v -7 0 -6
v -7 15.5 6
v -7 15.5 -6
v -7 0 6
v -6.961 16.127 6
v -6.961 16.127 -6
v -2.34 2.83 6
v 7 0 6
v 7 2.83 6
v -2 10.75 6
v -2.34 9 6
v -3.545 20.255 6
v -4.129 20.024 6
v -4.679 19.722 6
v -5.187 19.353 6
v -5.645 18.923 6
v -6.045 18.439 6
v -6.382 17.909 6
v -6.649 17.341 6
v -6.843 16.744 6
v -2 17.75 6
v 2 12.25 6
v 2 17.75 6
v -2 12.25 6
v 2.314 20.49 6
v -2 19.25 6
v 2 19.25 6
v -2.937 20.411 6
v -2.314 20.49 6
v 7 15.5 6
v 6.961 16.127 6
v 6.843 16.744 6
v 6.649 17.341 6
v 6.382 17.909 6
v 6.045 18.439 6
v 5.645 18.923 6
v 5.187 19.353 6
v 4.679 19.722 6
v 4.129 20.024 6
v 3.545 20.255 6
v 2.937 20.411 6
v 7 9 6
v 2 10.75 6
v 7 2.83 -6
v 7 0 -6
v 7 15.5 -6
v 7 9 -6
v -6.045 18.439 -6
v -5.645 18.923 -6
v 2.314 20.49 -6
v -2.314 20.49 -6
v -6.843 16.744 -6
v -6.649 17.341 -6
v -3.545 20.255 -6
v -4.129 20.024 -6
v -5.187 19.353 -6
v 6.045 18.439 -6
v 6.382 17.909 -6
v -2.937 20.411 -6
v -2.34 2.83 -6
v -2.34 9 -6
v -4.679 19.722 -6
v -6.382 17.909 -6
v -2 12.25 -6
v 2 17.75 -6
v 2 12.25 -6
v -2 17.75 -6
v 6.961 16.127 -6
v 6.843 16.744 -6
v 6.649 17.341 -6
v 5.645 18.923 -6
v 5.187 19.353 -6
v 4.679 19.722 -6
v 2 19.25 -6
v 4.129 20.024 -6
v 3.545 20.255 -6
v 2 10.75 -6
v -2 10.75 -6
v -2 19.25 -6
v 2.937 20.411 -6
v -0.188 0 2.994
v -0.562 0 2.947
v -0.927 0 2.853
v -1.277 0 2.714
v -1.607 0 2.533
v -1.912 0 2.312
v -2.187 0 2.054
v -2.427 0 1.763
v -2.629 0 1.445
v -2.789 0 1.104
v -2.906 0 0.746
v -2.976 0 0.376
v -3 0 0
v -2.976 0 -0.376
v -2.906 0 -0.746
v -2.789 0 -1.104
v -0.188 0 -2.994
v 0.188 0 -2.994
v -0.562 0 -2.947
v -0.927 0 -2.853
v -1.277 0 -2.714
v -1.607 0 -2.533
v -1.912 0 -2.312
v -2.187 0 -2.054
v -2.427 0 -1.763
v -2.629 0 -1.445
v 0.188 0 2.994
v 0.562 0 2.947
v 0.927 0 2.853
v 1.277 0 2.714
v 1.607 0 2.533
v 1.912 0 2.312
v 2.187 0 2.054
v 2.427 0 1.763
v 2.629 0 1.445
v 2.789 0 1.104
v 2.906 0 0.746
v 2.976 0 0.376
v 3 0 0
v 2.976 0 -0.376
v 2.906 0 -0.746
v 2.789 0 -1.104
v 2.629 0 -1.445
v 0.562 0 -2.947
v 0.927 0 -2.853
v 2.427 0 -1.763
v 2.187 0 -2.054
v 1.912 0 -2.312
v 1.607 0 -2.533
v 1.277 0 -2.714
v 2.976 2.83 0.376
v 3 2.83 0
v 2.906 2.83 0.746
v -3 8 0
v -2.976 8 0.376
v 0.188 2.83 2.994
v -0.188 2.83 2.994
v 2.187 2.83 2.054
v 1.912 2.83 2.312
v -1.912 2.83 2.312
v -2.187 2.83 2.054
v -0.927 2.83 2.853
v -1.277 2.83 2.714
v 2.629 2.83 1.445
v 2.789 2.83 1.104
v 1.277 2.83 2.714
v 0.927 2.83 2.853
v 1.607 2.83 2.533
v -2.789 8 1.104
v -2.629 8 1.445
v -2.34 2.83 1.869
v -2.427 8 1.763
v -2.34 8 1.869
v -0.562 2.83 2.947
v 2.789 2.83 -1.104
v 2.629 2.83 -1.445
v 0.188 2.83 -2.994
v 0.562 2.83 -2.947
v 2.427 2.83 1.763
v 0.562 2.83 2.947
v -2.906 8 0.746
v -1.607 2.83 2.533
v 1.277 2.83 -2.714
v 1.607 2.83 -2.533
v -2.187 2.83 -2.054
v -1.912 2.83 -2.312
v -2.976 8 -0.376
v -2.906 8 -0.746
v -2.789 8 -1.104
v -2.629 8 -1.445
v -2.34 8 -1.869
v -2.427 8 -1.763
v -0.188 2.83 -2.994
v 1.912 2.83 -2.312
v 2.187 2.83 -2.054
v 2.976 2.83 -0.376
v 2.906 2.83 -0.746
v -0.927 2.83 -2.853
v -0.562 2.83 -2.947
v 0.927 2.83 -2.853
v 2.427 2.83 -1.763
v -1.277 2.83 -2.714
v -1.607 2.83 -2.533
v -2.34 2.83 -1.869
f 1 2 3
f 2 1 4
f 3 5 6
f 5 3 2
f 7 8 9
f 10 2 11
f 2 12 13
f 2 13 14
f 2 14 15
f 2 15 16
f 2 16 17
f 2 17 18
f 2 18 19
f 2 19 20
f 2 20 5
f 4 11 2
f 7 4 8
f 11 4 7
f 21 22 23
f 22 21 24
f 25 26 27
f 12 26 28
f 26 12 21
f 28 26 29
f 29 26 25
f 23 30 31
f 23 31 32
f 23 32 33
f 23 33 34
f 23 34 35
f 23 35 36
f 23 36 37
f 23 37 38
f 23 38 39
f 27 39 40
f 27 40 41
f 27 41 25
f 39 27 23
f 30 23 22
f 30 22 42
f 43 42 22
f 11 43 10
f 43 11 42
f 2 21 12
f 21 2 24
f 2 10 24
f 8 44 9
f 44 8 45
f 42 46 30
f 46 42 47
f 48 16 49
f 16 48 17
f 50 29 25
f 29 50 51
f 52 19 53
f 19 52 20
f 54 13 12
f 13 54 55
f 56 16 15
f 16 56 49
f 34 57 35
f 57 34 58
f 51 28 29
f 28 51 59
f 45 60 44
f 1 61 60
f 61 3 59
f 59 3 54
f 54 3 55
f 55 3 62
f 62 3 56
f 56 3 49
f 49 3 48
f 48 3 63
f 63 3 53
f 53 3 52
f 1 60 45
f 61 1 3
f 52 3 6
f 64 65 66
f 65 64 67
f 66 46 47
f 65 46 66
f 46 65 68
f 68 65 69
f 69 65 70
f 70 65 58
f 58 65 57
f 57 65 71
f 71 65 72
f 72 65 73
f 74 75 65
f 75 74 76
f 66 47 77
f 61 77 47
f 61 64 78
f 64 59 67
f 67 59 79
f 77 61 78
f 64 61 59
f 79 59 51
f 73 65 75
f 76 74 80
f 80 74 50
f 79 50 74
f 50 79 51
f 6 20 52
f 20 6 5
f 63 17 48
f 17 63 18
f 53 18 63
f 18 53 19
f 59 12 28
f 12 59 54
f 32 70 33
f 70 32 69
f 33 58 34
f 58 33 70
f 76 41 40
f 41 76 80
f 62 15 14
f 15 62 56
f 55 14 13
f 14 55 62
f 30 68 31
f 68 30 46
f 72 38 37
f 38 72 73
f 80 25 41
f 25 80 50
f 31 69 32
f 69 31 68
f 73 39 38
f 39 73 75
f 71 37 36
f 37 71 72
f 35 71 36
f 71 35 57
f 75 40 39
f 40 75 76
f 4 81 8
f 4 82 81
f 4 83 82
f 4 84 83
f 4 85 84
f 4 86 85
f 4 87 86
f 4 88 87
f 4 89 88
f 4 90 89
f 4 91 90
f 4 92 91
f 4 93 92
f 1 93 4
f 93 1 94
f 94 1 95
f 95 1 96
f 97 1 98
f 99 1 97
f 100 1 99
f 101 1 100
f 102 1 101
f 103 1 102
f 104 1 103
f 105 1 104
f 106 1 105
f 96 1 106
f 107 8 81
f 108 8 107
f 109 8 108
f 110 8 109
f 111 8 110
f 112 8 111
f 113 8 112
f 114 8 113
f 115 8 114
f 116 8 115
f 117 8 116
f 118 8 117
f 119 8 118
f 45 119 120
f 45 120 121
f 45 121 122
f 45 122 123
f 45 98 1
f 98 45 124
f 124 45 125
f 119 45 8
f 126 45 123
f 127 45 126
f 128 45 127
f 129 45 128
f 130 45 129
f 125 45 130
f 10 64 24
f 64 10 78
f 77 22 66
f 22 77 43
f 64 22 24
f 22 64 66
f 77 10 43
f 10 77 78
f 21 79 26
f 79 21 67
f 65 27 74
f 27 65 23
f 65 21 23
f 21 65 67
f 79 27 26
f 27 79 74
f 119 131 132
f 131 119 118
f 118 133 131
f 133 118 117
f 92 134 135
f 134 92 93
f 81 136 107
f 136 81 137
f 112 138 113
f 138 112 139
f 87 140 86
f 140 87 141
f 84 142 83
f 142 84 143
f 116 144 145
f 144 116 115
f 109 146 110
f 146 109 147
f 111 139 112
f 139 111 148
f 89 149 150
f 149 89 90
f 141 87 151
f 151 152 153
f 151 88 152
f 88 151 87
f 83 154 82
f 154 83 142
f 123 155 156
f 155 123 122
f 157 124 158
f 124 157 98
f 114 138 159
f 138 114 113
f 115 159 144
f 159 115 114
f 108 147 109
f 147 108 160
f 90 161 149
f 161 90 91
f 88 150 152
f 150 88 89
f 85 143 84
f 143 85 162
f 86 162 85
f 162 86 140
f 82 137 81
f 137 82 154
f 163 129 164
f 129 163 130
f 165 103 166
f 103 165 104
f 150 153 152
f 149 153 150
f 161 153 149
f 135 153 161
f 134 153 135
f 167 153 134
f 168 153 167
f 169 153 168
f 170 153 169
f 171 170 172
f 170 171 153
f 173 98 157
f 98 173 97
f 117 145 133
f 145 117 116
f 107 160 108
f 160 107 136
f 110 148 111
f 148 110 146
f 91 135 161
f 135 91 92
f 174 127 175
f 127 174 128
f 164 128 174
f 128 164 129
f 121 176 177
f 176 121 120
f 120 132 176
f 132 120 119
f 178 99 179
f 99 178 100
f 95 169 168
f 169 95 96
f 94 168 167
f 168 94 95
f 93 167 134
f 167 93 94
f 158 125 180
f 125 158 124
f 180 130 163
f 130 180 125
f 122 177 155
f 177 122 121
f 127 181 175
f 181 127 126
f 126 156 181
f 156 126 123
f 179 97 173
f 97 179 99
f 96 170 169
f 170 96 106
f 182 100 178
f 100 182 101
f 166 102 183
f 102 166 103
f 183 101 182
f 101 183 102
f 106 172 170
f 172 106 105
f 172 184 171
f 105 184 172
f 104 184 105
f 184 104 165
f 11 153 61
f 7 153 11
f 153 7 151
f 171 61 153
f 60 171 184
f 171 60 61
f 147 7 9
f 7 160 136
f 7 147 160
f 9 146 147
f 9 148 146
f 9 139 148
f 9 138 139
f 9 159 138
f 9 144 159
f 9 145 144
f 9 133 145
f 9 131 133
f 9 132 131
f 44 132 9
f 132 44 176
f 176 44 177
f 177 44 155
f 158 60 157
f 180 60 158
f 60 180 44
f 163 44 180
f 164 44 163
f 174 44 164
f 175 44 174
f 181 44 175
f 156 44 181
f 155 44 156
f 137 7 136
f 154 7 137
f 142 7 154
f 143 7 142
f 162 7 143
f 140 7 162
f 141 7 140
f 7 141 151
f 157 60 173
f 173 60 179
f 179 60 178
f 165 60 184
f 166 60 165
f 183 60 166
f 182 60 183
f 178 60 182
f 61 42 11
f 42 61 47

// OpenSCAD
$fn = 50;


difference() {
	union() {
		translate(v = [0, 13.5000000000, -6.0000000000]) {
			rotate(a = [0, 0, 0]) {
				hull() {
					translate(v = [-2.0000000000, 2.0000000000, 0]) {
						rotate(a = [0, 0, 0]) {
							translate(v = [0, 0, 0]) {
								rotate(a = [0, 0, 0]) {
									cylinder(h = 12, r = 5);
								}
							}
						}
					}
					translate(v = [2.0000000000, 2.0000000000, 0]) {
						rotate(a = [0, 0, 0]) {
							translate(v = [0, 0, 0]) {
								rotate(a = [0, 0, 0]) {
									cylinder(h = 12, r = 5);
								}
							}
						}
					}
					translate(v = [-2.0000000000, -2.0000000000, 0]) {
						rotate(a = [0, 0, 0]) {
							translate(v = [0, 0, 0]) {
								rotate(a = [0, 0, 0]) {
									cylinder(h = 12, r = 5);
								}
							}
						}
					}
					translate(v = [2.0000000000, -2.0000000000, 0]) {
						rotate(a = [0, 0, 0]) {
							translate(v = [0, 0, 0]) {
								rotate(a = [0, 0, 0]) {
									cylinder(h = 12, r = 5);
								}
							}
						}
					}
				}
			}
		}
		translate(v = [-7.0000000000, 0, -6.0000000000]) {
			rotate(a = [0, 0, 0]) {
				cube(size = [14, 13.5000000000, 12]);
			}
		}
	}
	union() {
		translate(v = [-2.0000000000, 10.7500000000, -50]) {
			rotate(a = [0, 0, 0]) {
				cube(size = [4, 1.5000000000, 100]);
			}
		}
		translate(v = [-2.0000000000, 17.7500000000, -50]) {
			rotate(a = [0, 0, 0]) {
				cube(size = [4, 1.5000000000, 100]);
			}
		}
		translate(v = [0.0000000000, 8, 0]) {
			rotate(a = [90, 0, 0]) {
				cylinder(h = 8, r = 3.0000000000);
			}
		}
		translate(v = [-2.3396880416, 9, -25]) {
			rotate(a = [90, 0, 0]) {
				cube(size = [9.3587521664, 100, 6.1700000000]);
			}
		}
	}
}
